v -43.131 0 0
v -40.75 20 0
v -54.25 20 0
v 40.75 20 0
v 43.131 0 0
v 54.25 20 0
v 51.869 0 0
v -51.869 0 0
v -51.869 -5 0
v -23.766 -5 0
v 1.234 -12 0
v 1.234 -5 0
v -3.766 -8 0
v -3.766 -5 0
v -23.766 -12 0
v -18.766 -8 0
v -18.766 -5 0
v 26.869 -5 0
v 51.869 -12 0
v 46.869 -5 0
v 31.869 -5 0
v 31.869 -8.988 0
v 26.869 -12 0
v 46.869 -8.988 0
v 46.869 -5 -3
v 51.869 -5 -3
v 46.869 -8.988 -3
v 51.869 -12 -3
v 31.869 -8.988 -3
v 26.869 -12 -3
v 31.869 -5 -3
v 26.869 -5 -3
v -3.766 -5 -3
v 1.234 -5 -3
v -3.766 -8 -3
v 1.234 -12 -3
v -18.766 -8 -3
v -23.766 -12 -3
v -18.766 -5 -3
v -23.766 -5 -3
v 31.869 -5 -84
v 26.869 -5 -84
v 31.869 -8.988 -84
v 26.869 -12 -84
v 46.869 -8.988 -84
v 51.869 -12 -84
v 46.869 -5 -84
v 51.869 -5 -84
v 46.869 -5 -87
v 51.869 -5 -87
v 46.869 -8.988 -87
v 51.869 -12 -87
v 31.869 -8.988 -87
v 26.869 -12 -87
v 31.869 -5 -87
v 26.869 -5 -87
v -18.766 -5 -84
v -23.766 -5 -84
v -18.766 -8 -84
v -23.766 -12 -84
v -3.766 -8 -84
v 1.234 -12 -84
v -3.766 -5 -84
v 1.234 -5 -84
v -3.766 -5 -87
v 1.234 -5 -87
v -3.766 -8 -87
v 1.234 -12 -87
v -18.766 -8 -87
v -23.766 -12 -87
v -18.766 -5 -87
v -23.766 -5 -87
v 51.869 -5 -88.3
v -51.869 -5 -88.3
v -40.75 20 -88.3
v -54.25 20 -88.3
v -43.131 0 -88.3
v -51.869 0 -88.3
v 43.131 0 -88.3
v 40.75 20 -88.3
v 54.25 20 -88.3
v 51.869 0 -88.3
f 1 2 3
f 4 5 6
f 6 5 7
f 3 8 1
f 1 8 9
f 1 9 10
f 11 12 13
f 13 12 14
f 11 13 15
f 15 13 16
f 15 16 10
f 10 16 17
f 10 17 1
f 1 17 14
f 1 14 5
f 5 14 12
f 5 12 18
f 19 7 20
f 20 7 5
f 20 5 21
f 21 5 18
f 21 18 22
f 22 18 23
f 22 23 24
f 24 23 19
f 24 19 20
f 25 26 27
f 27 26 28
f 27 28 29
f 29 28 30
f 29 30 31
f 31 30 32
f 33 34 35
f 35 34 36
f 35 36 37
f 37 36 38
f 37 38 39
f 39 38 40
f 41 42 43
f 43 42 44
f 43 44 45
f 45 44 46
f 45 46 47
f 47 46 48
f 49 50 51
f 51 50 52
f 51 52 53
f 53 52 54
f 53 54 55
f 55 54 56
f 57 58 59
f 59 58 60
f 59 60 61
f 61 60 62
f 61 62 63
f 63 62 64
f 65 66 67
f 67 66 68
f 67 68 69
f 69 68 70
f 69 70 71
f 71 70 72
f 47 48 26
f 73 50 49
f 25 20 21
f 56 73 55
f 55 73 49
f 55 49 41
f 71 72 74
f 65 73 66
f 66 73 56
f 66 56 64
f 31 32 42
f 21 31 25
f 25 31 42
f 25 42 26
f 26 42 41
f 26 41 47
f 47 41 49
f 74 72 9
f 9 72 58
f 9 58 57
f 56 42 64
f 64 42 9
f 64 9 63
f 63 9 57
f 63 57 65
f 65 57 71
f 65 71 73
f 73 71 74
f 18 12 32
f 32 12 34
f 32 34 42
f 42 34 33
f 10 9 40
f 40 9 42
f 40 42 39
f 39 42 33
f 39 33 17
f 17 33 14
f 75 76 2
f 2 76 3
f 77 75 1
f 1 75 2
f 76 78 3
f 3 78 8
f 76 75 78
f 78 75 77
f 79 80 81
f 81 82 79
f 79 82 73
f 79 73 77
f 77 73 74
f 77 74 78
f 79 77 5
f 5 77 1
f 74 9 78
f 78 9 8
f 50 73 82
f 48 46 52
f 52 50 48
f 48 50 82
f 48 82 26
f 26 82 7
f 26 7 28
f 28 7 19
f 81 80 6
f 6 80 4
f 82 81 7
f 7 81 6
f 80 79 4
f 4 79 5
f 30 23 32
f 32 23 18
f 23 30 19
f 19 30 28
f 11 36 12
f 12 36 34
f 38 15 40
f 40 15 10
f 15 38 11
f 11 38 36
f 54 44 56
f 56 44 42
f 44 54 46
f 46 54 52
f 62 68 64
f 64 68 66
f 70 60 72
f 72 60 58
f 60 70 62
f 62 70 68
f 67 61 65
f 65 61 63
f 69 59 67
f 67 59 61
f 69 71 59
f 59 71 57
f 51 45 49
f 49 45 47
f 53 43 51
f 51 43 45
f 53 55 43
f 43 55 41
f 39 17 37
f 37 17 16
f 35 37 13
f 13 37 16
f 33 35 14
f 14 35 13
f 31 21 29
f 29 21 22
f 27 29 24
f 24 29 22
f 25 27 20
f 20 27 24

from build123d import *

# Parameters (mm, degrees)
BOSS_EXTRUDE1_DEPTH   = 88.3
BOSS_EXTRUDE1_2_DEPTH = 88.3
SKETCH2_W             = 103.737369208
SKETCH2_H             = 88.3
BOSS_EXTRUDE2_DEPTH   = 5
SKETCH4_W             = 25
SKETCH4_H             = 3
BOSS_EXTRUDE4_DEPTH   = 7
SKETCH6_W             = 15
SKETCH6_H             = 3
SKETCH6_H_2           = 3.987889175
CUT_EXTRUDE2_DEPTH    = 97


with BuildPart() as part:
    # Sketch1 → Boss-Extrude1 (new body)
    with BuildSketch(Plane.XY):
        Polygon((-51.868684604, 0), (-47.5, 0), (-43.131315396, 0), (-40.75, 20), (-54.25, 20), align=None)
    extrude(amount=-BOSS_EXTRUDE1_DEPTH)



with BuildPart() as body_2:
    # Sketch1 → Boss-Extrude1 2 (new body)
    with BuildSketch(Plane.XY):
        Polygon((40.75, 20), (43.131315396, 0), (47.5, 0), (51.868684604, 0), (54.25, 20), align=None)
    extrude(amount=-BOSS_EXTRUDE1_2_DEPTH)


with BuildPart() as part_1:
    add(part.part)

    add(body_2.part)  # Boss-Extrude2 merges body 2
    # Sketch2 → Boss-Extrude2 (add)
    with BuildSketch(Plane.XZ):
        with Locations((0, -44.15)):
            Rectangle(SKETCH2_W, SKETCH2_H)
    extrude(amount=BOSS_EXTRUDE2_DEPTH)

    # Sketch4 → Boss-Extrude4 (add)
    with BuildSketch(Plane.XZ.offset(5)):
        with Locations((39.368684604, -1.5)):
            Rectangle(SKETCH4_W, SKETCH4_H)
        with Locations((-11.265529701, -1.5)):
            Rectangle(SKETCH4_W, SKETCH4_H)
        with Locations((39.368684604, -85.5)):
            Rectangle(SKETCH4_W, SKETCH4_H)
        with Locations((-11.265529701, -85.5)):
            Rectangle(SKETCH4_W, SKETCH4_H)
    extrude(amount=BOSS_EXTRUDE4_DEPTH)

    # Sketch6 → Cut-Extrude2 (cut)
    with BuildSketch(Plane(origin=(0, 0, -87), x_dir=(-1, 0, 0), z_dir=(0, 0, -1))):
        with Locations((11.265529701, -6.5)):
            Rectangle(SKETCH6_W, SKETCH6_H)
        with Locations((-39.368684604, -6.993944588)):
            Rectangle(SKETCH6_W, SKETCH6_H_2)
    extrude(amount=-CUT_EXTRUDE2_DEPTH, mode=Mode.SUBTRACT)


solid = part_1.part
